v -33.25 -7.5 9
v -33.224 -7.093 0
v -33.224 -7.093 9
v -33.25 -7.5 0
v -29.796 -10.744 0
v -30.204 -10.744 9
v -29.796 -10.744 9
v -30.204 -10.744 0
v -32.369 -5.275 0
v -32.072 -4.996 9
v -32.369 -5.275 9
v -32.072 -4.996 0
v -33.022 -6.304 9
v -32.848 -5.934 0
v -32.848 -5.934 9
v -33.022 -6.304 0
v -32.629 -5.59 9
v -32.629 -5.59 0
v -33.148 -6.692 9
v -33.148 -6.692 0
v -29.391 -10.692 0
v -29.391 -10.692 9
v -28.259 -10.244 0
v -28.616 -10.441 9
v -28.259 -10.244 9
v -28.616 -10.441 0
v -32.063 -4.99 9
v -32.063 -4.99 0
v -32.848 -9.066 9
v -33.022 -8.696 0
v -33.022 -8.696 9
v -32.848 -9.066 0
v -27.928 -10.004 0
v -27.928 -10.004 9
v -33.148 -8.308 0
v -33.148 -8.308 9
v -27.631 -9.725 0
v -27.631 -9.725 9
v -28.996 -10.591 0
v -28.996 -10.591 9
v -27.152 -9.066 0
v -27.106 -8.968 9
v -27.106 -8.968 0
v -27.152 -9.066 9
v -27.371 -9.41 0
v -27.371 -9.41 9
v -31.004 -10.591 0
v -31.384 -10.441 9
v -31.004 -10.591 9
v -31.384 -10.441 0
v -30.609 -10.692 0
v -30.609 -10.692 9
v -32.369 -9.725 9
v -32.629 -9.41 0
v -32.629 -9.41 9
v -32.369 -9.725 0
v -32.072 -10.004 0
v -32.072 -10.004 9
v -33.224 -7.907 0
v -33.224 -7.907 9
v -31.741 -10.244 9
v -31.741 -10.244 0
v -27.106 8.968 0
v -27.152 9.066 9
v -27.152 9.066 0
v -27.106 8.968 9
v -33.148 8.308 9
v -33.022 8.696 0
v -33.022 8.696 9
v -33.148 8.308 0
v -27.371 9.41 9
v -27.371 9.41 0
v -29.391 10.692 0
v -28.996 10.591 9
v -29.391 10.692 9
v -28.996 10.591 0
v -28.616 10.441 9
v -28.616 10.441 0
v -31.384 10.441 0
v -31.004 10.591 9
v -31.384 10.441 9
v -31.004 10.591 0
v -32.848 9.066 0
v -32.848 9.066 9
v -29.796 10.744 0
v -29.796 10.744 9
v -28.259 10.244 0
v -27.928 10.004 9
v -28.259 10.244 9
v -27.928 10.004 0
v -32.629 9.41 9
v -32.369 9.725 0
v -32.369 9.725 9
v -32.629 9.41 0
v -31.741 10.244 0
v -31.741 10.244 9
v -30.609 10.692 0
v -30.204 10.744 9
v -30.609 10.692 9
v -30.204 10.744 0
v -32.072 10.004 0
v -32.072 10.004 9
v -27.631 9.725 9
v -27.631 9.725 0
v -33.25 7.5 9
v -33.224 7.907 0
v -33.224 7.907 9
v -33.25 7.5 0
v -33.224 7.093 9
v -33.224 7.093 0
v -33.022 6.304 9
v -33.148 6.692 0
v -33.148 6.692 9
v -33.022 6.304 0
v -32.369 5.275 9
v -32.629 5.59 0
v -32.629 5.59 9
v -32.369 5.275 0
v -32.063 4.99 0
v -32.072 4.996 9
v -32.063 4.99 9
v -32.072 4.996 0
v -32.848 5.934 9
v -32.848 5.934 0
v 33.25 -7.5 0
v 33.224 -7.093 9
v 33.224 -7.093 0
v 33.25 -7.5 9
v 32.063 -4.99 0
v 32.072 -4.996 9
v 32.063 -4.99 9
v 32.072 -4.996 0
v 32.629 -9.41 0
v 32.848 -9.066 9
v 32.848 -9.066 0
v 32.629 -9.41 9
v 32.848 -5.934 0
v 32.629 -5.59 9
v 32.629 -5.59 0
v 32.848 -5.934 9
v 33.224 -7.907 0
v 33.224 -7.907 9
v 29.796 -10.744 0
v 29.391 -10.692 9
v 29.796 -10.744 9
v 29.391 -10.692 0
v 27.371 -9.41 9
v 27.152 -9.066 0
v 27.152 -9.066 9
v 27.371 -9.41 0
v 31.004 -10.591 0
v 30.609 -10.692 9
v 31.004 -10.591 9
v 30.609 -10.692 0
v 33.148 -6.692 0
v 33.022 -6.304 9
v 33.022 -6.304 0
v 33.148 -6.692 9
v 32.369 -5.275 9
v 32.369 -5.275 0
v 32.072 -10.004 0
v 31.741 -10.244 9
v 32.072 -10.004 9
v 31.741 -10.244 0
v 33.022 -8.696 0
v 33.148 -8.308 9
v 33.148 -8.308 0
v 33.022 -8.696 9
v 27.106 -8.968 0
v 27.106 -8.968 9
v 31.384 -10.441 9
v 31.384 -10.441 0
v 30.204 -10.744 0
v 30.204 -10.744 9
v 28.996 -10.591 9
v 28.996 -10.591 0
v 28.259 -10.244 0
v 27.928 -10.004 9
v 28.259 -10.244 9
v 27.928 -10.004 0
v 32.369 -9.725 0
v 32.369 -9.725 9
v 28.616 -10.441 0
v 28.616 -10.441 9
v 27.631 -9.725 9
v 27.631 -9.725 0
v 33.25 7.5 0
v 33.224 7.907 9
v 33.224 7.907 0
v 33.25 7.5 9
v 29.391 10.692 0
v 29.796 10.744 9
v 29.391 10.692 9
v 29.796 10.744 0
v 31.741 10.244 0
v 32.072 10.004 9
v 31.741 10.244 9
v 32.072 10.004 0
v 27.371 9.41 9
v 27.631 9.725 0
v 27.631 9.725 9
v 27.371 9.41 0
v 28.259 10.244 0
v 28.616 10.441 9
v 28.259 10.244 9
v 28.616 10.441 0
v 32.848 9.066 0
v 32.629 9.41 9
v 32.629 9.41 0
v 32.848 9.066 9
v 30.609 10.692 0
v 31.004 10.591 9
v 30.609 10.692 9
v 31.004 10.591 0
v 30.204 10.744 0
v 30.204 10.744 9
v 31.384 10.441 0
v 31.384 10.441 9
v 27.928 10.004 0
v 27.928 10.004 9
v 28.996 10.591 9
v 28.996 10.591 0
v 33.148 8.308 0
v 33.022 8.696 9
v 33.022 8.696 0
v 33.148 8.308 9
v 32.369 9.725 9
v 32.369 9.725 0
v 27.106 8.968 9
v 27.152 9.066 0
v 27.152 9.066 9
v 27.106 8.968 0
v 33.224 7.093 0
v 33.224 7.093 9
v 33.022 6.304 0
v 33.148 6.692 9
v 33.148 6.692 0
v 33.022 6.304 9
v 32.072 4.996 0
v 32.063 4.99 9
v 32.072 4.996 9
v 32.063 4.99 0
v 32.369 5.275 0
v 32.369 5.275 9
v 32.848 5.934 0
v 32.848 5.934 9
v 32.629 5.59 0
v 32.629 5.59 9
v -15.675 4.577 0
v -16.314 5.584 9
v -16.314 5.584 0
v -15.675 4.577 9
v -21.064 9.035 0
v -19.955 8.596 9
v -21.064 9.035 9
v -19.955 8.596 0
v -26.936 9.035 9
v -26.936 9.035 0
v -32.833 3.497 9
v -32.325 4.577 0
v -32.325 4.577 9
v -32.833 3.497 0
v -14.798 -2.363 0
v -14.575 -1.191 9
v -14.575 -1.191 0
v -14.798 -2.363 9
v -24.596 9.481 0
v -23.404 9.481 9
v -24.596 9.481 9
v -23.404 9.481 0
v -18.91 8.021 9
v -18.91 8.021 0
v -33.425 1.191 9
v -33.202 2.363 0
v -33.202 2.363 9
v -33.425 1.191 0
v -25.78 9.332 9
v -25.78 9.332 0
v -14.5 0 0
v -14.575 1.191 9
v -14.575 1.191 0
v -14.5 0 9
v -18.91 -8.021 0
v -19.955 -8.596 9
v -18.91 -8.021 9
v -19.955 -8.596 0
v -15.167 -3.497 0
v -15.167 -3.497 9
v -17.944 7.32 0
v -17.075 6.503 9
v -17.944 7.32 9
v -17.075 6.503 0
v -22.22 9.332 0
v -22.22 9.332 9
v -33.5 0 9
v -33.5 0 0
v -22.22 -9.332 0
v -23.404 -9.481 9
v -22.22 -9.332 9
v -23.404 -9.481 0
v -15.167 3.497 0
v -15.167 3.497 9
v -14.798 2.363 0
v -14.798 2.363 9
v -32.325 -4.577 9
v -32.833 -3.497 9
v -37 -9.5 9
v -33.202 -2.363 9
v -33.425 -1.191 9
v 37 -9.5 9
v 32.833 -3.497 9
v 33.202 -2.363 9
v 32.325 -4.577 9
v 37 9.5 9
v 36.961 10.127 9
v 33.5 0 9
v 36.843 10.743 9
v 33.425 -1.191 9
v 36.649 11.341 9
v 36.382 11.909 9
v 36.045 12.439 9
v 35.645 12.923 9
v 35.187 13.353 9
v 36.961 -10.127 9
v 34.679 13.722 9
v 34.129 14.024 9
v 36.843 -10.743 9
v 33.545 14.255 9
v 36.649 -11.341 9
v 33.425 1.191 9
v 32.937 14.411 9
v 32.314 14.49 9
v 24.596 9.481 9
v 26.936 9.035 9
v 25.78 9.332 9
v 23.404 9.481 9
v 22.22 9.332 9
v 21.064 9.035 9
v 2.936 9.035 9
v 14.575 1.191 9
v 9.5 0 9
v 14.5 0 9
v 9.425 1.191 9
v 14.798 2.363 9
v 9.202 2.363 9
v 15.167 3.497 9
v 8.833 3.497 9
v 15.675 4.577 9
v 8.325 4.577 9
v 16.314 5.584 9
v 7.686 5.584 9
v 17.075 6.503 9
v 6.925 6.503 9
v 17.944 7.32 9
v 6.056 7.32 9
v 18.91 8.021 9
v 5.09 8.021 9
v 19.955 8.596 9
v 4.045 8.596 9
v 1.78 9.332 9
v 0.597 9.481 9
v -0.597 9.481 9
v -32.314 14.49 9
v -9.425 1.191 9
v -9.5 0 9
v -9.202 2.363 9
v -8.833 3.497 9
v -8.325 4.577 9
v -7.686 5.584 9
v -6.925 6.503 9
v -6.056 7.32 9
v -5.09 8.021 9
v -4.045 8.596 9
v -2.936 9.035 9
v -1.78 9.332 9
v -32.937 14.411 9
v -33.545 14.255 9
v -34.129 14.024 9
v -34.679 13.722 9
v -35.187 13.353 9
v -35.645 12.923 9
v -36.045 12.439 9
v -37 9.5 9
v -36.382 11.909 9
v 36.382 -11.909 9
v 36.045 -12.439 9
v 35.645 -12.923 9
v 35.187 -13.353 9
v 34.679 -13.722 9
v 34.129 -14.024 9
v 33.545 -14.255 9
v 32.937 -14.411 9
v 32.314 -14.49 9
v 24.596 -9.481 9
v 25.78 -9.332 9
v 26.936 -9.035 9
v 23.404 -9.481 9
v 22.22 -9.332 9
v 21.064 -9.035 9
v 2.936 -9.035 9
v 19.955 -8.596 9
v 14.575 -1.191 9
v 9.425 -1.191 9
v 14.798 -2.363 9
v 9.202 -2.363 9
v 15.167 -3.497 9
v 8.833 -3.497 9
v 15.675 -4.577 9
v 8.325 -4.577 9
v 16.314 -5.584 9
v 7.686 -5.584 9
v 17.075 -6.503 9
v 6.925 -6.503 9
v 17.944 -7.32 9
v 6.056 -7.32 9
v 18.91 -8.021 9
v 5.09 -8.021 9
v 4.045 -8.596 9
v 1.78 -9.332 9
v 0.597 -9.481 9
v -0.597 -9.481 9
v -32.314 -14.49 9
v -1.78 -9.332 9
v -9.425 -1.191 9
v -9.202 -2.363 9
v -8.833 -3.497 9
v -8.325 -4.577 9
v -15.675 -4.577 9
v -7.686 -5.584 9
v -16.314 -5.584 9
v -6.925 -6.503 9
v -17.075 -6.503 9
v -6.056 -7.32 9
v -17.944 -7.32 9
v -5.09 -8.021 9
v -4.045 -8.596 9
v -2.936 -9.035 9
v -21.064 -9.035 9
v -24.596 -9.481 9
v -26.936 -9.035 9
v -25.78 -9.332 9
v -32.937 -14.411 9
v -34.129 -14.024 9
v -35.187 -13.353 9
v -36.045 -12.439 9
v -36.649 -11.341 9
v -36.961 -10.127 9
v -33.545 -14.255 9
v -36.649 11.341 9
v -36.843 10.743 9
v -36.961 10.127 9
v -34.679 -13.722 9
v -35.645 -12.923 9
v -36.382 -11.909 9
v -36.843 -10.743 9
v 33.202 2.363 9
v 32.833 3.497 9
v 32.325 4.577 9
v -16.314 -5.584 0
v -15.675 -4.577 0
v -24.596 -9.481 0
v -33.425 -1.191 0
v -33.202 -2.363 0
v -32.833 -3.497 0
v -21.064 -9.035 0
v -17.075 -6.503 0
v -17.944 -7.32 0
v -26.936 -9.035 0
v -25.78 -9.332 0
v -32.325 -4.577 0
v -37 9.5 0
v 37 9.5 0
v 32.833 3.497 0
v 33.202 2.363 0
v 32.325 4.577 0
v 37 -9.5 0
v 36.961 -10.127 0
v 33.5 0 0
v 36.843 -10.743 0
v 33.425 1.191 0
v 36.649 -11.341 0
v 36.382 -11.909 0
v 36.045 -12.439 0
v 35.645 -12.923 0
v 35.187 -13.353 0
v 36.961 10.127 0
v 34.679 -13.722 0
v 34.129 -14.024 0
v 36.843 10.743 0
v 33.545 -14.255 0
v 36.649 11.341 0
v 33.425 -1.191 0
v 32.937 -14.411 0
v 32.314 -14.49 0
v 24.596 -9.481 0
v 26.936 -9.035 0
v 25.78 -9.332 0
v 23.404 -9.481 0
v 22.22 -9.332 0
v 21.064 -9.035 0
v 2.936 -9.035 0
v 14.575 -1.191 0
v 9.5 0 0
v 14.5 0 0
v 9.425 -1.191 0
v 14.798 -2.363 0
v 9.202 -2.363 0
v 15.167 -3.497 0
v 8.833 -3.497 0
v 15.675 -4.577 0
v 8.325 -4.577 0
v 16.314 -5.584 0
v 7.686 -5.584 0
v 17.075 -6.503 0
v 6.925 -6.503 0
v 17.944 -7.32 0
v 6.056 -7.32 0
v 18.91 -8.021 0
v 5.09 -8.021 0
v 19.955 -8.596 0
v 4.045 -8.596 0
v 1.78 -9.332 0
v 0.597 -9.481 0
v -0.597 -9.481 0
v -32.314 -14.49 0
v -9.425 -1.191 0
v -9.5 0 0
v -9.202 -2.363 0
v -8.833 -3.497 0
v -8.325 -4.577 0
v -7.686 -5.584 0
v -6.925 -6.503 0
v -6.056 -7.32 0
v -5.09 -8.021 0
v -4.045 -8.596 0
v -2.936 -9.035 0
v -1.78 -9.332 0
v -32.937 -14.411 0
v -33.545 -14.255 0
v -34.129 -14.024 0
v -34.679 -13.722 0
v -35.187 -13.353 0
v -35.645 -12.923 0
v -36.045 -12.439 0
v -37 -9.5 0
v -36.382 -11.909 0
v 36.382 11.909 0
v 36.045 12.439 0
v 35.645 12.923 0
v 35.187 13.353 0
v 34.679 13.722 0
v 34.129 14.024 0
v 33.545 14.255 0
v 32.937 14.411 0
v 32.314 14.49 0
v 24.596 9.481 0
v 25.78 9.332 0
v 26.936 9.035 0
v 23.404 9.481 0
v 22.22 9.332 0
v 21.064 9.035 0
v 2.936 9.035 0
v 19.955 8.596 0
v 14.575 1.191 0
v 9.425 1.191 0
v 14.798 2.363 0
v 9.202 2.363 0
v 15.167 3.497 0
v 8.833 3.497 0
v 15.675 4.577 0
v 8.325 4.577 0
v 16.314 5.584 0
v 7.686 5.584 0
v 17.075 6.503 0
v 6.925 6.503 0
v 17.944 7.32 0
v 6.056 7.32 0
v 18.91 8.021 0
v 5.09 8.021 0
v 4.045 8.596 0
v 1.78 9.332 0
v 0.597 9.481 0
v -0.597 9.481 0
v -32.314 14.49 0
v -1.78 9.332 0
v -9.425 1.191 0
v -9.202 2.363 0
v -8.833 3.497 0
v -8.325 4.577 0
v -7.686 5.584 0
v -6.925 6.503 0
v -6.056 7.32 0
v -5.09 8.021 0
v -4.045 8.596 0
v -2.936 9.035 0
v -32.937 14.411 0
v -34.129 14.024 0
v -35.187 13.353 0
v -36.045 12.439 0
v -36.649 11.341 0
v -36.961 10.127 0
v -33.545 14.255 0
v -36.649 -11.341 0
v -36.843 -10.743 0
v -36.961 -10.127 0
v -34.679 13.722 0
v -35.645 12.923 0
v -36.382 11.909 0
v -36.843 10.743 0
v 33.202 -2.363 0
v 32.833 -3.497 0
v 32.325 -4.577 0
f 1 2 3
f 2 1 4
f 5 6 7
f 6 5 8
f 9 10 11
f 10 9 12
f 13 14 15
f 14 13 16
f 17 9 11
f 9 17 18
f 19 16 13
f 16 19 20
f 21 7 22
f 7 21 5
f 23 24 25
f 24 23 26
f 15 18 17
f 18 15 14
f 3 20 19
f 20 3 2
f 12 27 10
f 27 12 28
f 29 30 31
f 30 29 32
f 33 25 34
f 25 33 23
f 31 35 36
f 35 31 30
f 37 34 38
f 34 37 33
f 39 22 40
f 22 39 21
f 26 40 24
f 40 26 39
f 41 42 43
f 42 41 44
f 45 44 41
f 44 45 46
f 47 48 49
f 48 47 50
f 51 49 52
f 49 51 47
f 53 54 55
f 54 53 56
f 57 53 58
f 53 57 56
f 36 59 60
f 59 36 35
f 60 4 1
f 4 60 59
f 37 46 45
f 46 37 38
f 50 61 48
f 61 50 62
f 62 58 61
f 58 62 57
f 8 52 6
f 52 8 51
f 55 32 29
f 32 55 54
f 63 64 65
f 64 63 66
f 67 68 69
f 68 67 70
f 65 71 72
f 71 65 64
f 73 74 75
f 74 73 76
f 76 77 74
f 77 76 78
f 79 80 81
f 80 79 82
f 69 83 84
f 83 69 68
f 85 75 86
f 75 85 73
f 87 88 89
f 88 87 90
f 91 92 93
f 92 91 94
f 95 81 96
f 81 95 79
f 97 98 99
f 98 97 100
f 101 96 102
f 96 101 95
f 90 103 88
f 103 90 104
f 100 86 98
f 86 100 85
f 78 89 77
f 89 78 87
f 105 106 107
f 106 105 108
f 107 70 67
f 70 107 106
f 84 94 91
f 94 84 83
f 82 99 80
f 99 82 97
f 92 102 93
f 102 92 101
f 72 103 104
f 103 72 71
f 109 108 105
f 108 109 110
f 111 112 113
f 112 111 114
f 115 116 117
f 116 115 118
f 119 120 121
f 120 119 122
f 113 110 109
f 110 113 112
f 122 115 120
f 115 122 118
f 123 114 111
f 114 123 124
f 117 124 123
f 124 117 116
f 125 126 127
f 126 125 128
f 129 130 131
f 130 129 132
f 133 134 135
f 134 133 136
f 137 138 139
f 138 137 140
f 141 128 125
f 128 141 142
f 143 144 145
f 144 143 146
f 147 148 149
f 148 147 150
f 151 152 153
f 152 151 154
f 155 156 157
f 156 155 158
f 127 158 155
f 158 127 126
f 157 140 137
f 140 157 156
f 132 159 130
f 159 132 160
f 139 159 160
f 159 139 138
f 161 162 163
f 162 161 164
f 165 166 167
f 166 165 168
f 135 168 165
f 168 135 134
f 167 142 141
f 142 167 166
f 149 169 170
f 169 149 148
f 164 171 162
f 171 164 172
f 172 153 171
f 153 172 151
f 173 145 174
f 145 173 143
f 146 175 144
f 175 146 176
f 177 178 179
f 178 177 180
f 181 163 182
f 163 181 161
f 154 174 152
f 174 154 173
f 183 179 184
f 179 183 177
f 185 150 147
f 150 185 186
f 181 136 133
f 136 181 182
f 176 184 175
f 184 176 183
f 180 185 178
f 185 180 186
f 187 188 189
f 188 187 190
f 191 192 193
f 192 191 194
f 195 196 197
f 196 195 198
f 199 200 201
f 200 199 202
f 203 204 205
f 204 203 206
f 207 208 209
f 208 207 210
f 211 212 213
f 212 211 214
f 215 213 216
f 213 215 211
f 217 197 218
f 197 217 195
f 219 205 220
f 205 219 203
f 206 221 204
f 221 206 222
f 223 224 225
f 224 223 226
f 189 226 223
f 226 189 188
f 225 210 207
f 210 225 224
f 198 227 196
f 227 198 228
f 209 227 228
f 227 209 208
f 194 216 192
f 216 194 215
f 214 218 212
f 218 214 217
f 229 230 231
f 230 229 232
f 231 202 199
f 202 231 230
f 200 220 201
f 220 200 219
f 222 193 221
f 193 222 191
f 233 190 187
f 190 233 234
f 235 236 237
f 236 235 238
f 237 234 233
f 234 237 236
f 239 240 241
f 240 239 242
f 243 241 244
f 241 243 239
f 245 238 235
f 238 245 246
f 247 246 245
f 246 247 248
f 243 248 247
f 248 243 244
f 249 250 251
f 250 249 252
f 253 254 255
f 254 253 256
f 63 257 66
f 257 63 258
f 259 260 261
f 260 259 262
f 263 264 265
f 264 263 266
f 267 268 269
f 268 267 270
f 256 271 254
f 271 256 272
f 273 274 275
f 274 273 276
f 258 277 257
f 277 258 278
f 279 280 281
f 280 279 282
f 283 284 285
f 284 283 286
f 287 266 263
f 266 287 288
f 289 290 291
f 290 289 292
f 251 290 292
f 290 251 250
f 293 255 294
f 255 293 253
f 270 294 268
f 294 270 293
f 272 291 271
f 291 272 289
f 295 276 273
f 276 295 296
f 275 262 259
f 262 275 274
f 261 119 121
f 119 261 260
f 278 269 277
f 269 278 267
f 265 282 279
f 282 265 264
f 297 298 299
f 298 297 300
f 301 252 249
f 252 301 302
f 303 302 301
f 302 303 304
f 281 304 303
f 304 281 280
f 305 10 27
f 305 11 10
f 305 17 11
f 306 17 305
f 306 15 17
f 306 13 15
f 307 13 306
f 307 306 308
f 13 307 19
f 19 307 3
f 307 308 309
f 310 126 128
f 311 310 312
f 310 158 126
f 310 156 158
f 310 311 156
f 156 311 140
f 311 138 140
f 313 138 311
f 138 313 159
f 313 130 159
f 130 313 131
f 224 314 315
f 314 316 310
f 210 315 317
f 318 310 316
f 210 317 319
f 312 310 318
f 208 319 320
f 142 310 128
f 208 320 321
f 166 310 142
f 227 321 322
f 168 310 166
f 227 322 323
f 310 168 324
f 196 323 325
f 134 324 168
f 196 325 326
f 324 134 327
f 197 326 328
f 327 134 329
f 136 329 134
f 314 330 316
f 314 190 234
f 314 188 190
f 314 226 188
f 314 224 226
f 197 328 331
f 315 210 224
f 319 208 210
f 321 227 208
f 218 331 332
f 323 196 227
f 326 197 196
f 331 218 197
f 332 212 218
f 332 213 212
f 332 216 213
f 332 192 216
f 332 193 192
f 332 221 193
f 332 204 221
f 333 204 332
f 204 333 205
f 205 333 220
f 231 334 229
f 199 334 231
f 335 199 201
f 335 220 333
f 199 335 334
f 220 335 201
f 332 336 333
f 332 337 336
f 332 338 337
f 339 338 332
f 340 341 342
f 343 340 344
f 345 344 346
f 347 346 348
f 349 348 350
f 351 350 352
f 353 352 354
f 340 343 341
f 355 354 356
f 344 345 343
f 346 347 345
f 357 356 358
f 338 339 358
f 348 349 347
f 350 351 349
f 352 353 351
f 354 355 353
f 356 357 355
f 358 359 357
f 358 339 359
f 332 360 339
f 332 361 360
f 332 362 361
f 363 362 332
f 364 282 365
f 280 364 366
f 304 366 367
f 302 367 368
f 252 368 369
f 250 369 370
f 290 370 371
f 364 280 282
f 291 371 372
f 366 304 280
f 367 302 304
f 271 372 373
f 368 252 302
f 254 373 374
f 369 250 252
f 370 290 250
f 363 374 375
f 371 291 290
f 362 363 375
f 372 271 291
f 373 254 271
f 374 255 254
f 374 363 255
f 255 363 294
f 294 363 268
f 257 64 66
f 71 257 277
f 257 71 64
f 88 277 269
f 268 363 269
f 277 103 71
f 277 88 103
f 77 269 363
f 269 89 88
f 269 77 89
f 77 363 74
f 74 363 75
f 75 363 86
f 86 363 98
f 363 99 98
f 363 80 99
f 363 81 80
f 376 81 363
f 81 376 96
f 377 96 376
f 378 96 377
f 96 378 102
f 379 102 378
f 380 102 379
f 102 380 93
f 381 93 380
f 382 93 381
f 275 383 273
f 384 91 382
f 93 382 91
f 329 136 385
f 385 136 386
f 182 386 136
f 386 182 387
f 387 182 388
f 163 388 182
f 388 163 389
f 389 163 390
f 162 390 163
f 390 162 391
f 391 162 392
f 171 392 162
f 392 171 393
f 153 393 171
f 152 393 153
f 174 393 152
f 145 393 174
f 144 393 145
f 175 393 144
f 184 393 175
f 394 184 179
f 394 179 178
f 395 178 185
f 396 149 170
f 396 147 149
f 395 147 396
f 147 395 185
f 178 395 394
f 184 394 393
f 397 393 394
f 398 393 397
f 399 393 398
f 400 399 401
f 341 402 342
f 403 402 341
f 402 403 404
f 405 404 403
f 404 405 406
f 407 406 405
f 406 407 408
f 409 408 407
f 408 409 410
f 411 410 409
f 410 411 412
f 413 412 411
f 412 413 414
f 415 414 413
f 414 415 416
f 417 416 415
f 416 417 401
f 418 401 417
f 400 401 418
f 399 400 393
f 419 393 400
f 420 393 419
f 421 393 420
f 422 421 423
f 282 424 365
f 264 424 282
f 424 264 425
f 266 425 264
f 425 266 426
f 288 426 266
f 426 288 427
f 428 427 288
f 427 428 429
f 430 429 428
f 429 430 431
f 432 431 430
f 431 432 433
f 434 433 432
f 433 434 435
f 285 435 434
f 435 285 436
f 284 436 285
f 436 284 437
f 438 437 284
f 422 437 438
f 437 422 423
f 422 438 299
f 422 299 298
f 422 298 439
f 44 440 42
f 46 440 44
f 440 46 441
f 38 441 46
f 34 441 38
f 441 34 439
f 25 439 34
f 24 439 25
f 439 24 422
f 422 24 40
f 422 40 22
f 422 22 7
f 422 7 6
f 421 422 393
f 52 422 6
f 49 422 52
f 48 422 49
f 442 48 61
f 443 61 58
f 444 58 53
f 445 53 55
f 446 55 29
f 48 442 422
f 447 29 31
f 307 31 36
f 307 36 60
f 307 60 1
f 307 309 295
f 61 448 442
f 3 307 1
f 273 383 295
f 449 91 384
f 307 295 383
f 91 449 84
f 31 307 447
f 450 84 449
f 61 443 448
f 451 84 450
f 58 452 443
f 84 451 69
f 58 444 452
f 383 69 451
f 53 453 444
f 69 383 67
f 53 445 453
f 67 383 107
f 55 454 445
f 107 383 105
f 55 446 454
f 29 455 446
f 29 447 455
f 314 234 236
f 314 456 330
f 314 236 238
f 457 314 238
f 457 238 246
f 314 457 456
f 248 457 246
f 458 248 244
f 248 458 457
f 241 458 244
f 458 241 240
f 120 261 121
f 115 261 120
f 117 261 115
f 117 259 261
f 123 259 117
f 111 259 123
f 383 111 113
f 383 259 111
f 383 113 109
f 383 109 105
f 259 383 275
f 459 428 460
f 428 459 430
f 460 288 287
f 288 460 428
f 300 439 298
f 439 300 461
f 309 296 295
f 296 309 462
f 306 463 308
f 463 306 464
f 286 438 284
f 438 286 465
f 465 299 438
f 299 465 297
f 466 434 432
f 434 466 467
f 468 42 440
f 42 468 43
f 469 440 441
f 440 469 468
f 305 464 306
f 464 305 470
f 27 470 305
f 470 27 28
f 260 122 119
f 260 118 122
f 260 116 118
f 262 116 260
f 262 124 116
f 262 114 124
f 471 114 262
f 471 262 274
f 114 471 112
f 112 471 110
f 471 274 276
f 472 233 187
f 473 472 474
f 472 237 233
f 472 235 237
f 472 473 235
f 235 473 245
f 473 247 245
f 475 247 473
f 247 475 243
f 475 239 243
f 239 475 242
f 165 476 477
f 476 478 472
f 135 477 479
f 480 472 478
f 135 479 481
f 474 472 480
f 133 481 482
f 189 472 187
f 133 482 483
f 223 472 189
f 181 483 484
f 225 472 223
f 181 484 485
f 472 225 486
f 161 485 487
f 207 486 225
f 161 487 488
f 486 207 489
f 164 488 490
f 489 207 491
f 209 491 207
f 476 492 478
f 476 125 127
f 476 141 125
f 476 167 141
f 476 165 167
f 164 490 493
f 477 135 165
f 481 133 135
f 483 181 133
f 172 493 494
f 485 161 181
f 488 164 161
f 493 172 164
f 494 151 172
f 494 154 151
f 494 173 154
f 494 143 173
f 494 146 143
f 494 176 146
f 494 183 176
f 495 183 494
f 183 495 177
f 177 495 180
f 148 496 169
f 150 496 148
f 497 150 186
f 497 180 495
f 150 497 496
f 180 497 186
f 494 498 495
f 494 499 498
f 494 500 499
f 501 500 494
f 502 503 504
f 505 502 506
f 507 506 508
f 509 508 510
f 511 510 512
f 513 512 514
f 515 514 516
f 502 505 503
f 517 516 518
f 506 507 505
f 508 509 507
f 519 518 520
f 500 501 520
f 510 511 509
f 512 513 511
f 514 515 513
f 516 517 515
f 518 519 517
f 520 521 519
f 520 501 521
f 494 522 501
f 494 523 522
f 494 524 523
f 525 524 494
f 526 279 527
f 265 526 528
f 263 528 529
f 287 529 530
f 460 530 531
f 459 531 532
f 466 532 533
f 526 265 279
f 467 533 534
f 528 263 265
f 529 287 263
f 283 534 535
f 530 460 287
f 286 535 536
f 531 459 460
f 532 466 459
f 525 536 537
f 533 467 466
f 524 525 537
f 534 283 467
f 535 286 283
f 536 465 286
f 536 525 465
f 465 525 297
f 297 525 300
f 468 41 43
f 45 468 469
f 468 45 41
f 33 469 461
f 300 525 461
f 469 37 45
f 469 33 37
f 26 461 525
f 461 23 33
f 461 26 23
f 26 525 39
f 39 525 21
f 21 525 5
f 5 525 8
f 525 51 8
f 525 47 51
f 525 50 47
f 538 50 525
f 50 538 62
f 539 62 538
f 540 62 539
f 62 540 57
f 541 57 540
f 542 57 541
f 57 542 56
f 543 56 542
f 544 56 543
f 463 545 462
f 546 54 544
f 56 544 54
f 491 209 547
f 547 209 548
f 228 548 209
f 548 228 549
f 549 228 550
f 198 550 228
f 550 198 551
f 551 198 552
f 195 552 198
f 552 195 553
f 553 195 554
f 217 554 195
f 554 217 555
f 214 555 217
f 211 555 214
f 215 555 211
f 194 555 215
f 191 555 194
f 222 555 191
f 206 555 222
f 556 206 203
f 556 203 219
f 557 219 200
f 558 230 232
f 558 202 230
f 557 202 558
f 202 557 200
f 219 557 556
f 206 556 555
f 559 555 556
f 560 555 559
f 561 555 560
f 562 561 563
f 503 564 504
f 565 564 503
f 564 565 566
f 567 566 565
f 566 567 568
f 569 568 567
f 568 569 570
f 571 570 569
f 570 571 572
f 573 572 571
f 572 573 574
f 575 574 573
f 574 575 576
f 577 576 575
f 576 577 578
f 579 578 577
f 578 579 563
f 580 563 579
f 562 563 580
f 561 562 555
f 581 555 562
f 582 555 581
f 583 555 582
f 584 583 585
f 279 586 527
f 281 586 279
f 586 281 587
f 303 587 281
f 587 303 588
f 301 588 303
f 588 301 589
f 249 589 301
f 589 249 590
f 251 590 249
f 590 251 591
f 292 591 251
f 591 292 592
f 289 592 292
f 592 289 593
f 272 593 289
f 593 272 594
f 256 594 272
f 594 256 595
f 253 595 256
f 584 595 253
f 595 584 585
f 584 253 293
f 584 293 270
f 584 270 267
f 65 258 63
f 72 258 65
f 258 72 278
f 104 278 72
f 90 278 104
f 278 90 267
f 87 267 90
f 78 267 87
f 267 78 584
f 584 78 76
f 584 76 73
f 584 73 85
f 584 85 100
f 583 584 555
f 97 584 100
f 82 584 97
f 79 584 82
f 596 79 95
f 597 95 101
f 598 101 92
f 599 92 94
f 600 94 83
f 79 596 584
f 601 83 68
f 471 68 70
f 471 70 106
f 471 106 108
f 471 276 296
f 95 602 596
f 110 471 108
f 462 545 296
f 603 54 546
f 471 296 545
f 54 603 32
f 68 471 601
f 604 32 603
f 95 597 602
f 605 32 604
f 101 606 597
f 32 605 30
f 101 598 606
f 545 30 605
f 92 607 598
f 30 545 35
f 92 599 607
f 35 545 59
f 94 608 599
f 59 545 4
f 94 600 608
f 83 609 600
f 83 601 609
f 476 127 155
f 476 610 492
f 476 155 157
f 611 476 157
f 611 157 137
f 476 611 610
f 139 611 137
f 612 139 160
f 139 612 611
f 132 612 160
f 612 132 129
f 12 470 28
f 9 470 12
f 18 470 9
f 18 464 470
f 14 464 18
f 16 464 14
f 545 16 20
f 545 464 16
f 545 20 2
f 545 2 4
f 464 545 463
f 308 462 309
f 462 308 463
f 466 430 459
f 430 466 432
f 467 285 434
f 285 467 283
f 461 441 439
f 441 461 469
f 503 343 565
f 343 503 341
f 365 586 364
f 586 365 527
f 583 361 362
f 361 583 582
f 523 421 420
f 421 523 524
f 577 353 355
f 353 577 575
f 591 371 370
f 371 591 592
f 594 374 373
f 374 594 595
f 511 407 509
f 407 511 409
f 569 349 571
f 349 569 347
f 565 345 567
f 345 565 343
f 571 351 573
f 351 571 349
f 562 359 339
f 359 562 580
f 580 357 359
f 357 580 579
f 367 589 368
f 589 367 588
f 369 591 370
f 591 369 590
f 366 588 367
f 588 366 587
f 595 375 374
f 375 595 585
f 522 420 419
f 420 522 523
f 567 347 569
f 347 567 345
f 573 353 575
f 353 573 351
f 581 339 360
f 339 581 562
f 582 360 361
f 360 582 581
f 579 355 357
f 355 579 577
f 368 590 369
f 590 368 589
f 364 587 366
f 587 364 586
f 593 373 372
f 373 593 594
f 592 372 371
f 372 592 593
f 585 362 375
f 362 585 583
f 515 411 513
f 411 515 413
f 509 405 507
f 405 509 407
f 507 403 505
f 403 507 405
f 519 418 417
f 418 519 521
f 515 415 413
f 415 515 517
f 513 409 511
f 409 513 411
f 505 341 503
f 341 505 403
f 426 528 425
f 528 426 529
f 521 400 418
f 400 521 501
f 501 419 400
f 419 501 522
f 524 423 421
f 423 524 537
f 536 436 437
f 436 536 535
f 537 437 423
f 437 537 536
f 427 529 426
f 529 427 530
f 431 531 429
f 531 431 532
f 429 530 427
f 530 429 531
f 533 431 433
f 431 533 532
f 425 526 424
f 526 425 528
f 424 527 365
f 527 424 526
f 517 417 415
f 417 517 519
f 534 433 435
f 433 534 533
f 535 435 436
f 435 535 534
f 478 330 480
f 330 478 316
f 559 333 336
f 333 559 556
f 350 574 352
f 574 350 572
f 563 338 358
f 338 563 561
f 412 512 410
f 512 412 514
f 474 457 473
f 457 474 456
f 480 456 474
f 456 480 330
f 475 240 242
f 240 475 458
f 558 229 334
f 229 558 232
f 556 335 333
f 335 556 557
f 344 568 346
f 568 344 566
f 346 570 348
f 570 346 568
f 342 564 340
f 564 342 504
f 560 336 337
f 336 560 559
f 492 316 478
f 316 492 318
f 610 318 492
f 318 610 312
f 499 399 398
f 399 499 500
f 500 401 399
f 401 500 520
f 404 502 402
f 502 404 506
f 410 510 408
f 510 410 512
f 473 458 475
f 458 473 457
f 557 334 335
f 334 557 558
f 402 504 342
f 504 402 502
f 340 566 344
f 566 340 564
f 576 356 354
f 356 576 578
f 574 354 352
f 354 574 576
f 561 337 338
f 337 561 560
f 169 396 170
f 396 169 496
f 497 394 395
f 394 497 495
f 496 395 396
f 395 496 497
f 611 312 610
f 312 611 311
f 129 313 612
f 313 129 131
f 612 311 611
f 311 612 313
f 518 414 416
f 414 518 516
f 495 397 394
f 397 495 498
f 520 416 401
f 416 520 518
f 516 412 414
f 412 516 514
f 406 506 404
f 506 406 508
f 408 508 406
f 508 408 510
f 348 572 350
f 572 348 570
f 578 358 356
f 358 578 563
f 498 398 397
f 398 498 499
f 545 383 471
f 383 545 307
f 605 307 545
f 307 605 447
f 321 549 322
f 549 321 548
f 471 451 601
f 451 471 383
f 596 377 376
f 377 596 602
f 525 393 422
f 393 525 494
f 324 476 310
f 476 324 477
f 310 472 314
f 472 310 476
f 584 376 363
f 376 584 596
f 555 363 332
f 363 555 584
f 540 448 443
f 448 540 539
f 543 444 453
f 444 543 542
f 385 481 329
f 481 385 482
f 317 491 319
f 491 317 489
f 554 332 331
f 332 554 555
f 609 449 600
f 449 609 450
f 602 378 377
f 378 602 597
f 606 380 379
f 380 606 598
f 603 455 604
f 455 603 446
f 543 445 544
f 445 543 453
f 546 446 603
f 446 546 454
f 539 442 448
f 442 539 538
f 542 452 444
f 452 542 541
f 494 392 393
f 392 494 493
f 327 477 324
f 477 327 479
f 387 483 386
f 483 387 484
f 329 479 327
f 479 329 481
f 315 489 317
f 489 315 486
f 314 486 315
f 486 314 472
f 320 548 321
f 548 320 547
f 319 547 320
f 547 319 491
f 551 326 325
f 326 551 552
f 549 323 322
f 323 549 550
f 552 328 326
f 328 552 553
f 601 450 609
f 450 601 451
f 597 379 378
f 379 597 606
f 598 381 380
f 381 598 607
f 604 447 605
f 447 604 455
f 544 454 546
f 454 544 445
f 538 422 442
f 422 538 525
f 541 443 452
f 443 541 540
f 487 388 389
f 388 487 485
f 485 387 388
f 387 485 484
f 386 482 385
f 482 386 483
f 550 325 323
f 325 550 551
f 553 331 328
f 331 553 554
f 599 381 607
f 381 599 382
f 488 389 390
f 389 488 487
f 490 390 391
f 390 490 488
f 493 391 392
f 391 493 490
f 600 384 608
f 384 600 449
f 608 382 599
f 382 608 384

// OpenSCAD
$fn = 50;


difference() {
	union() {
		hull() {
			translate(v = [-32.0000000000, 9.5000000000, 0]) {
				cylinder(h = 9, r = 5);
			}
			translate(v = [32.0000000000, 9.5000000000, 0]) {
				cylinder(h = 9, r = 5);
			}
			translate(v = [-32.0000000000, -9.5000000000, 0]) {
				cylinder(h = 9, r = 5);
			}
			translate(v = [32.0000000000, -9.5000000000, 0]) {
				cylinder(h = 9, r = 5);
			}
		}
	}
	union() {
		#translate(v = [-30.0000000000, -7.5000000000, -100.0000000000]) {
			cylinder(h = 200, r = 3.2500000000);
		}
		#translate(v = [-30.0000000000, 7.5000000000, -100.0000000000]) {
			cylinder(h = 200, r = 3.2500000000);
		}
		#translate(v = [30.0000000000, -7.5000000000, -100.0000000000]) {
			cylinder(h = 200, r = 3.2500000000);
		}
		#translate(v = [30.0000000000, 7.5000000000, -100.0000000000]) {
			cylinder(h = 200, r = 3.2500000000);
		}
		#translate(v = [-24.0000000000, 0, 0]) {
			cylinder(h = 9, r = 9.5000000000);
		}
		#cylinder(h = 9, r = 9.5000000000);
		#translate(v = [24.0000000000, 0, 0]) {
			cylinder(h = 9, r = 9.5000000000);
		}
	}
}
